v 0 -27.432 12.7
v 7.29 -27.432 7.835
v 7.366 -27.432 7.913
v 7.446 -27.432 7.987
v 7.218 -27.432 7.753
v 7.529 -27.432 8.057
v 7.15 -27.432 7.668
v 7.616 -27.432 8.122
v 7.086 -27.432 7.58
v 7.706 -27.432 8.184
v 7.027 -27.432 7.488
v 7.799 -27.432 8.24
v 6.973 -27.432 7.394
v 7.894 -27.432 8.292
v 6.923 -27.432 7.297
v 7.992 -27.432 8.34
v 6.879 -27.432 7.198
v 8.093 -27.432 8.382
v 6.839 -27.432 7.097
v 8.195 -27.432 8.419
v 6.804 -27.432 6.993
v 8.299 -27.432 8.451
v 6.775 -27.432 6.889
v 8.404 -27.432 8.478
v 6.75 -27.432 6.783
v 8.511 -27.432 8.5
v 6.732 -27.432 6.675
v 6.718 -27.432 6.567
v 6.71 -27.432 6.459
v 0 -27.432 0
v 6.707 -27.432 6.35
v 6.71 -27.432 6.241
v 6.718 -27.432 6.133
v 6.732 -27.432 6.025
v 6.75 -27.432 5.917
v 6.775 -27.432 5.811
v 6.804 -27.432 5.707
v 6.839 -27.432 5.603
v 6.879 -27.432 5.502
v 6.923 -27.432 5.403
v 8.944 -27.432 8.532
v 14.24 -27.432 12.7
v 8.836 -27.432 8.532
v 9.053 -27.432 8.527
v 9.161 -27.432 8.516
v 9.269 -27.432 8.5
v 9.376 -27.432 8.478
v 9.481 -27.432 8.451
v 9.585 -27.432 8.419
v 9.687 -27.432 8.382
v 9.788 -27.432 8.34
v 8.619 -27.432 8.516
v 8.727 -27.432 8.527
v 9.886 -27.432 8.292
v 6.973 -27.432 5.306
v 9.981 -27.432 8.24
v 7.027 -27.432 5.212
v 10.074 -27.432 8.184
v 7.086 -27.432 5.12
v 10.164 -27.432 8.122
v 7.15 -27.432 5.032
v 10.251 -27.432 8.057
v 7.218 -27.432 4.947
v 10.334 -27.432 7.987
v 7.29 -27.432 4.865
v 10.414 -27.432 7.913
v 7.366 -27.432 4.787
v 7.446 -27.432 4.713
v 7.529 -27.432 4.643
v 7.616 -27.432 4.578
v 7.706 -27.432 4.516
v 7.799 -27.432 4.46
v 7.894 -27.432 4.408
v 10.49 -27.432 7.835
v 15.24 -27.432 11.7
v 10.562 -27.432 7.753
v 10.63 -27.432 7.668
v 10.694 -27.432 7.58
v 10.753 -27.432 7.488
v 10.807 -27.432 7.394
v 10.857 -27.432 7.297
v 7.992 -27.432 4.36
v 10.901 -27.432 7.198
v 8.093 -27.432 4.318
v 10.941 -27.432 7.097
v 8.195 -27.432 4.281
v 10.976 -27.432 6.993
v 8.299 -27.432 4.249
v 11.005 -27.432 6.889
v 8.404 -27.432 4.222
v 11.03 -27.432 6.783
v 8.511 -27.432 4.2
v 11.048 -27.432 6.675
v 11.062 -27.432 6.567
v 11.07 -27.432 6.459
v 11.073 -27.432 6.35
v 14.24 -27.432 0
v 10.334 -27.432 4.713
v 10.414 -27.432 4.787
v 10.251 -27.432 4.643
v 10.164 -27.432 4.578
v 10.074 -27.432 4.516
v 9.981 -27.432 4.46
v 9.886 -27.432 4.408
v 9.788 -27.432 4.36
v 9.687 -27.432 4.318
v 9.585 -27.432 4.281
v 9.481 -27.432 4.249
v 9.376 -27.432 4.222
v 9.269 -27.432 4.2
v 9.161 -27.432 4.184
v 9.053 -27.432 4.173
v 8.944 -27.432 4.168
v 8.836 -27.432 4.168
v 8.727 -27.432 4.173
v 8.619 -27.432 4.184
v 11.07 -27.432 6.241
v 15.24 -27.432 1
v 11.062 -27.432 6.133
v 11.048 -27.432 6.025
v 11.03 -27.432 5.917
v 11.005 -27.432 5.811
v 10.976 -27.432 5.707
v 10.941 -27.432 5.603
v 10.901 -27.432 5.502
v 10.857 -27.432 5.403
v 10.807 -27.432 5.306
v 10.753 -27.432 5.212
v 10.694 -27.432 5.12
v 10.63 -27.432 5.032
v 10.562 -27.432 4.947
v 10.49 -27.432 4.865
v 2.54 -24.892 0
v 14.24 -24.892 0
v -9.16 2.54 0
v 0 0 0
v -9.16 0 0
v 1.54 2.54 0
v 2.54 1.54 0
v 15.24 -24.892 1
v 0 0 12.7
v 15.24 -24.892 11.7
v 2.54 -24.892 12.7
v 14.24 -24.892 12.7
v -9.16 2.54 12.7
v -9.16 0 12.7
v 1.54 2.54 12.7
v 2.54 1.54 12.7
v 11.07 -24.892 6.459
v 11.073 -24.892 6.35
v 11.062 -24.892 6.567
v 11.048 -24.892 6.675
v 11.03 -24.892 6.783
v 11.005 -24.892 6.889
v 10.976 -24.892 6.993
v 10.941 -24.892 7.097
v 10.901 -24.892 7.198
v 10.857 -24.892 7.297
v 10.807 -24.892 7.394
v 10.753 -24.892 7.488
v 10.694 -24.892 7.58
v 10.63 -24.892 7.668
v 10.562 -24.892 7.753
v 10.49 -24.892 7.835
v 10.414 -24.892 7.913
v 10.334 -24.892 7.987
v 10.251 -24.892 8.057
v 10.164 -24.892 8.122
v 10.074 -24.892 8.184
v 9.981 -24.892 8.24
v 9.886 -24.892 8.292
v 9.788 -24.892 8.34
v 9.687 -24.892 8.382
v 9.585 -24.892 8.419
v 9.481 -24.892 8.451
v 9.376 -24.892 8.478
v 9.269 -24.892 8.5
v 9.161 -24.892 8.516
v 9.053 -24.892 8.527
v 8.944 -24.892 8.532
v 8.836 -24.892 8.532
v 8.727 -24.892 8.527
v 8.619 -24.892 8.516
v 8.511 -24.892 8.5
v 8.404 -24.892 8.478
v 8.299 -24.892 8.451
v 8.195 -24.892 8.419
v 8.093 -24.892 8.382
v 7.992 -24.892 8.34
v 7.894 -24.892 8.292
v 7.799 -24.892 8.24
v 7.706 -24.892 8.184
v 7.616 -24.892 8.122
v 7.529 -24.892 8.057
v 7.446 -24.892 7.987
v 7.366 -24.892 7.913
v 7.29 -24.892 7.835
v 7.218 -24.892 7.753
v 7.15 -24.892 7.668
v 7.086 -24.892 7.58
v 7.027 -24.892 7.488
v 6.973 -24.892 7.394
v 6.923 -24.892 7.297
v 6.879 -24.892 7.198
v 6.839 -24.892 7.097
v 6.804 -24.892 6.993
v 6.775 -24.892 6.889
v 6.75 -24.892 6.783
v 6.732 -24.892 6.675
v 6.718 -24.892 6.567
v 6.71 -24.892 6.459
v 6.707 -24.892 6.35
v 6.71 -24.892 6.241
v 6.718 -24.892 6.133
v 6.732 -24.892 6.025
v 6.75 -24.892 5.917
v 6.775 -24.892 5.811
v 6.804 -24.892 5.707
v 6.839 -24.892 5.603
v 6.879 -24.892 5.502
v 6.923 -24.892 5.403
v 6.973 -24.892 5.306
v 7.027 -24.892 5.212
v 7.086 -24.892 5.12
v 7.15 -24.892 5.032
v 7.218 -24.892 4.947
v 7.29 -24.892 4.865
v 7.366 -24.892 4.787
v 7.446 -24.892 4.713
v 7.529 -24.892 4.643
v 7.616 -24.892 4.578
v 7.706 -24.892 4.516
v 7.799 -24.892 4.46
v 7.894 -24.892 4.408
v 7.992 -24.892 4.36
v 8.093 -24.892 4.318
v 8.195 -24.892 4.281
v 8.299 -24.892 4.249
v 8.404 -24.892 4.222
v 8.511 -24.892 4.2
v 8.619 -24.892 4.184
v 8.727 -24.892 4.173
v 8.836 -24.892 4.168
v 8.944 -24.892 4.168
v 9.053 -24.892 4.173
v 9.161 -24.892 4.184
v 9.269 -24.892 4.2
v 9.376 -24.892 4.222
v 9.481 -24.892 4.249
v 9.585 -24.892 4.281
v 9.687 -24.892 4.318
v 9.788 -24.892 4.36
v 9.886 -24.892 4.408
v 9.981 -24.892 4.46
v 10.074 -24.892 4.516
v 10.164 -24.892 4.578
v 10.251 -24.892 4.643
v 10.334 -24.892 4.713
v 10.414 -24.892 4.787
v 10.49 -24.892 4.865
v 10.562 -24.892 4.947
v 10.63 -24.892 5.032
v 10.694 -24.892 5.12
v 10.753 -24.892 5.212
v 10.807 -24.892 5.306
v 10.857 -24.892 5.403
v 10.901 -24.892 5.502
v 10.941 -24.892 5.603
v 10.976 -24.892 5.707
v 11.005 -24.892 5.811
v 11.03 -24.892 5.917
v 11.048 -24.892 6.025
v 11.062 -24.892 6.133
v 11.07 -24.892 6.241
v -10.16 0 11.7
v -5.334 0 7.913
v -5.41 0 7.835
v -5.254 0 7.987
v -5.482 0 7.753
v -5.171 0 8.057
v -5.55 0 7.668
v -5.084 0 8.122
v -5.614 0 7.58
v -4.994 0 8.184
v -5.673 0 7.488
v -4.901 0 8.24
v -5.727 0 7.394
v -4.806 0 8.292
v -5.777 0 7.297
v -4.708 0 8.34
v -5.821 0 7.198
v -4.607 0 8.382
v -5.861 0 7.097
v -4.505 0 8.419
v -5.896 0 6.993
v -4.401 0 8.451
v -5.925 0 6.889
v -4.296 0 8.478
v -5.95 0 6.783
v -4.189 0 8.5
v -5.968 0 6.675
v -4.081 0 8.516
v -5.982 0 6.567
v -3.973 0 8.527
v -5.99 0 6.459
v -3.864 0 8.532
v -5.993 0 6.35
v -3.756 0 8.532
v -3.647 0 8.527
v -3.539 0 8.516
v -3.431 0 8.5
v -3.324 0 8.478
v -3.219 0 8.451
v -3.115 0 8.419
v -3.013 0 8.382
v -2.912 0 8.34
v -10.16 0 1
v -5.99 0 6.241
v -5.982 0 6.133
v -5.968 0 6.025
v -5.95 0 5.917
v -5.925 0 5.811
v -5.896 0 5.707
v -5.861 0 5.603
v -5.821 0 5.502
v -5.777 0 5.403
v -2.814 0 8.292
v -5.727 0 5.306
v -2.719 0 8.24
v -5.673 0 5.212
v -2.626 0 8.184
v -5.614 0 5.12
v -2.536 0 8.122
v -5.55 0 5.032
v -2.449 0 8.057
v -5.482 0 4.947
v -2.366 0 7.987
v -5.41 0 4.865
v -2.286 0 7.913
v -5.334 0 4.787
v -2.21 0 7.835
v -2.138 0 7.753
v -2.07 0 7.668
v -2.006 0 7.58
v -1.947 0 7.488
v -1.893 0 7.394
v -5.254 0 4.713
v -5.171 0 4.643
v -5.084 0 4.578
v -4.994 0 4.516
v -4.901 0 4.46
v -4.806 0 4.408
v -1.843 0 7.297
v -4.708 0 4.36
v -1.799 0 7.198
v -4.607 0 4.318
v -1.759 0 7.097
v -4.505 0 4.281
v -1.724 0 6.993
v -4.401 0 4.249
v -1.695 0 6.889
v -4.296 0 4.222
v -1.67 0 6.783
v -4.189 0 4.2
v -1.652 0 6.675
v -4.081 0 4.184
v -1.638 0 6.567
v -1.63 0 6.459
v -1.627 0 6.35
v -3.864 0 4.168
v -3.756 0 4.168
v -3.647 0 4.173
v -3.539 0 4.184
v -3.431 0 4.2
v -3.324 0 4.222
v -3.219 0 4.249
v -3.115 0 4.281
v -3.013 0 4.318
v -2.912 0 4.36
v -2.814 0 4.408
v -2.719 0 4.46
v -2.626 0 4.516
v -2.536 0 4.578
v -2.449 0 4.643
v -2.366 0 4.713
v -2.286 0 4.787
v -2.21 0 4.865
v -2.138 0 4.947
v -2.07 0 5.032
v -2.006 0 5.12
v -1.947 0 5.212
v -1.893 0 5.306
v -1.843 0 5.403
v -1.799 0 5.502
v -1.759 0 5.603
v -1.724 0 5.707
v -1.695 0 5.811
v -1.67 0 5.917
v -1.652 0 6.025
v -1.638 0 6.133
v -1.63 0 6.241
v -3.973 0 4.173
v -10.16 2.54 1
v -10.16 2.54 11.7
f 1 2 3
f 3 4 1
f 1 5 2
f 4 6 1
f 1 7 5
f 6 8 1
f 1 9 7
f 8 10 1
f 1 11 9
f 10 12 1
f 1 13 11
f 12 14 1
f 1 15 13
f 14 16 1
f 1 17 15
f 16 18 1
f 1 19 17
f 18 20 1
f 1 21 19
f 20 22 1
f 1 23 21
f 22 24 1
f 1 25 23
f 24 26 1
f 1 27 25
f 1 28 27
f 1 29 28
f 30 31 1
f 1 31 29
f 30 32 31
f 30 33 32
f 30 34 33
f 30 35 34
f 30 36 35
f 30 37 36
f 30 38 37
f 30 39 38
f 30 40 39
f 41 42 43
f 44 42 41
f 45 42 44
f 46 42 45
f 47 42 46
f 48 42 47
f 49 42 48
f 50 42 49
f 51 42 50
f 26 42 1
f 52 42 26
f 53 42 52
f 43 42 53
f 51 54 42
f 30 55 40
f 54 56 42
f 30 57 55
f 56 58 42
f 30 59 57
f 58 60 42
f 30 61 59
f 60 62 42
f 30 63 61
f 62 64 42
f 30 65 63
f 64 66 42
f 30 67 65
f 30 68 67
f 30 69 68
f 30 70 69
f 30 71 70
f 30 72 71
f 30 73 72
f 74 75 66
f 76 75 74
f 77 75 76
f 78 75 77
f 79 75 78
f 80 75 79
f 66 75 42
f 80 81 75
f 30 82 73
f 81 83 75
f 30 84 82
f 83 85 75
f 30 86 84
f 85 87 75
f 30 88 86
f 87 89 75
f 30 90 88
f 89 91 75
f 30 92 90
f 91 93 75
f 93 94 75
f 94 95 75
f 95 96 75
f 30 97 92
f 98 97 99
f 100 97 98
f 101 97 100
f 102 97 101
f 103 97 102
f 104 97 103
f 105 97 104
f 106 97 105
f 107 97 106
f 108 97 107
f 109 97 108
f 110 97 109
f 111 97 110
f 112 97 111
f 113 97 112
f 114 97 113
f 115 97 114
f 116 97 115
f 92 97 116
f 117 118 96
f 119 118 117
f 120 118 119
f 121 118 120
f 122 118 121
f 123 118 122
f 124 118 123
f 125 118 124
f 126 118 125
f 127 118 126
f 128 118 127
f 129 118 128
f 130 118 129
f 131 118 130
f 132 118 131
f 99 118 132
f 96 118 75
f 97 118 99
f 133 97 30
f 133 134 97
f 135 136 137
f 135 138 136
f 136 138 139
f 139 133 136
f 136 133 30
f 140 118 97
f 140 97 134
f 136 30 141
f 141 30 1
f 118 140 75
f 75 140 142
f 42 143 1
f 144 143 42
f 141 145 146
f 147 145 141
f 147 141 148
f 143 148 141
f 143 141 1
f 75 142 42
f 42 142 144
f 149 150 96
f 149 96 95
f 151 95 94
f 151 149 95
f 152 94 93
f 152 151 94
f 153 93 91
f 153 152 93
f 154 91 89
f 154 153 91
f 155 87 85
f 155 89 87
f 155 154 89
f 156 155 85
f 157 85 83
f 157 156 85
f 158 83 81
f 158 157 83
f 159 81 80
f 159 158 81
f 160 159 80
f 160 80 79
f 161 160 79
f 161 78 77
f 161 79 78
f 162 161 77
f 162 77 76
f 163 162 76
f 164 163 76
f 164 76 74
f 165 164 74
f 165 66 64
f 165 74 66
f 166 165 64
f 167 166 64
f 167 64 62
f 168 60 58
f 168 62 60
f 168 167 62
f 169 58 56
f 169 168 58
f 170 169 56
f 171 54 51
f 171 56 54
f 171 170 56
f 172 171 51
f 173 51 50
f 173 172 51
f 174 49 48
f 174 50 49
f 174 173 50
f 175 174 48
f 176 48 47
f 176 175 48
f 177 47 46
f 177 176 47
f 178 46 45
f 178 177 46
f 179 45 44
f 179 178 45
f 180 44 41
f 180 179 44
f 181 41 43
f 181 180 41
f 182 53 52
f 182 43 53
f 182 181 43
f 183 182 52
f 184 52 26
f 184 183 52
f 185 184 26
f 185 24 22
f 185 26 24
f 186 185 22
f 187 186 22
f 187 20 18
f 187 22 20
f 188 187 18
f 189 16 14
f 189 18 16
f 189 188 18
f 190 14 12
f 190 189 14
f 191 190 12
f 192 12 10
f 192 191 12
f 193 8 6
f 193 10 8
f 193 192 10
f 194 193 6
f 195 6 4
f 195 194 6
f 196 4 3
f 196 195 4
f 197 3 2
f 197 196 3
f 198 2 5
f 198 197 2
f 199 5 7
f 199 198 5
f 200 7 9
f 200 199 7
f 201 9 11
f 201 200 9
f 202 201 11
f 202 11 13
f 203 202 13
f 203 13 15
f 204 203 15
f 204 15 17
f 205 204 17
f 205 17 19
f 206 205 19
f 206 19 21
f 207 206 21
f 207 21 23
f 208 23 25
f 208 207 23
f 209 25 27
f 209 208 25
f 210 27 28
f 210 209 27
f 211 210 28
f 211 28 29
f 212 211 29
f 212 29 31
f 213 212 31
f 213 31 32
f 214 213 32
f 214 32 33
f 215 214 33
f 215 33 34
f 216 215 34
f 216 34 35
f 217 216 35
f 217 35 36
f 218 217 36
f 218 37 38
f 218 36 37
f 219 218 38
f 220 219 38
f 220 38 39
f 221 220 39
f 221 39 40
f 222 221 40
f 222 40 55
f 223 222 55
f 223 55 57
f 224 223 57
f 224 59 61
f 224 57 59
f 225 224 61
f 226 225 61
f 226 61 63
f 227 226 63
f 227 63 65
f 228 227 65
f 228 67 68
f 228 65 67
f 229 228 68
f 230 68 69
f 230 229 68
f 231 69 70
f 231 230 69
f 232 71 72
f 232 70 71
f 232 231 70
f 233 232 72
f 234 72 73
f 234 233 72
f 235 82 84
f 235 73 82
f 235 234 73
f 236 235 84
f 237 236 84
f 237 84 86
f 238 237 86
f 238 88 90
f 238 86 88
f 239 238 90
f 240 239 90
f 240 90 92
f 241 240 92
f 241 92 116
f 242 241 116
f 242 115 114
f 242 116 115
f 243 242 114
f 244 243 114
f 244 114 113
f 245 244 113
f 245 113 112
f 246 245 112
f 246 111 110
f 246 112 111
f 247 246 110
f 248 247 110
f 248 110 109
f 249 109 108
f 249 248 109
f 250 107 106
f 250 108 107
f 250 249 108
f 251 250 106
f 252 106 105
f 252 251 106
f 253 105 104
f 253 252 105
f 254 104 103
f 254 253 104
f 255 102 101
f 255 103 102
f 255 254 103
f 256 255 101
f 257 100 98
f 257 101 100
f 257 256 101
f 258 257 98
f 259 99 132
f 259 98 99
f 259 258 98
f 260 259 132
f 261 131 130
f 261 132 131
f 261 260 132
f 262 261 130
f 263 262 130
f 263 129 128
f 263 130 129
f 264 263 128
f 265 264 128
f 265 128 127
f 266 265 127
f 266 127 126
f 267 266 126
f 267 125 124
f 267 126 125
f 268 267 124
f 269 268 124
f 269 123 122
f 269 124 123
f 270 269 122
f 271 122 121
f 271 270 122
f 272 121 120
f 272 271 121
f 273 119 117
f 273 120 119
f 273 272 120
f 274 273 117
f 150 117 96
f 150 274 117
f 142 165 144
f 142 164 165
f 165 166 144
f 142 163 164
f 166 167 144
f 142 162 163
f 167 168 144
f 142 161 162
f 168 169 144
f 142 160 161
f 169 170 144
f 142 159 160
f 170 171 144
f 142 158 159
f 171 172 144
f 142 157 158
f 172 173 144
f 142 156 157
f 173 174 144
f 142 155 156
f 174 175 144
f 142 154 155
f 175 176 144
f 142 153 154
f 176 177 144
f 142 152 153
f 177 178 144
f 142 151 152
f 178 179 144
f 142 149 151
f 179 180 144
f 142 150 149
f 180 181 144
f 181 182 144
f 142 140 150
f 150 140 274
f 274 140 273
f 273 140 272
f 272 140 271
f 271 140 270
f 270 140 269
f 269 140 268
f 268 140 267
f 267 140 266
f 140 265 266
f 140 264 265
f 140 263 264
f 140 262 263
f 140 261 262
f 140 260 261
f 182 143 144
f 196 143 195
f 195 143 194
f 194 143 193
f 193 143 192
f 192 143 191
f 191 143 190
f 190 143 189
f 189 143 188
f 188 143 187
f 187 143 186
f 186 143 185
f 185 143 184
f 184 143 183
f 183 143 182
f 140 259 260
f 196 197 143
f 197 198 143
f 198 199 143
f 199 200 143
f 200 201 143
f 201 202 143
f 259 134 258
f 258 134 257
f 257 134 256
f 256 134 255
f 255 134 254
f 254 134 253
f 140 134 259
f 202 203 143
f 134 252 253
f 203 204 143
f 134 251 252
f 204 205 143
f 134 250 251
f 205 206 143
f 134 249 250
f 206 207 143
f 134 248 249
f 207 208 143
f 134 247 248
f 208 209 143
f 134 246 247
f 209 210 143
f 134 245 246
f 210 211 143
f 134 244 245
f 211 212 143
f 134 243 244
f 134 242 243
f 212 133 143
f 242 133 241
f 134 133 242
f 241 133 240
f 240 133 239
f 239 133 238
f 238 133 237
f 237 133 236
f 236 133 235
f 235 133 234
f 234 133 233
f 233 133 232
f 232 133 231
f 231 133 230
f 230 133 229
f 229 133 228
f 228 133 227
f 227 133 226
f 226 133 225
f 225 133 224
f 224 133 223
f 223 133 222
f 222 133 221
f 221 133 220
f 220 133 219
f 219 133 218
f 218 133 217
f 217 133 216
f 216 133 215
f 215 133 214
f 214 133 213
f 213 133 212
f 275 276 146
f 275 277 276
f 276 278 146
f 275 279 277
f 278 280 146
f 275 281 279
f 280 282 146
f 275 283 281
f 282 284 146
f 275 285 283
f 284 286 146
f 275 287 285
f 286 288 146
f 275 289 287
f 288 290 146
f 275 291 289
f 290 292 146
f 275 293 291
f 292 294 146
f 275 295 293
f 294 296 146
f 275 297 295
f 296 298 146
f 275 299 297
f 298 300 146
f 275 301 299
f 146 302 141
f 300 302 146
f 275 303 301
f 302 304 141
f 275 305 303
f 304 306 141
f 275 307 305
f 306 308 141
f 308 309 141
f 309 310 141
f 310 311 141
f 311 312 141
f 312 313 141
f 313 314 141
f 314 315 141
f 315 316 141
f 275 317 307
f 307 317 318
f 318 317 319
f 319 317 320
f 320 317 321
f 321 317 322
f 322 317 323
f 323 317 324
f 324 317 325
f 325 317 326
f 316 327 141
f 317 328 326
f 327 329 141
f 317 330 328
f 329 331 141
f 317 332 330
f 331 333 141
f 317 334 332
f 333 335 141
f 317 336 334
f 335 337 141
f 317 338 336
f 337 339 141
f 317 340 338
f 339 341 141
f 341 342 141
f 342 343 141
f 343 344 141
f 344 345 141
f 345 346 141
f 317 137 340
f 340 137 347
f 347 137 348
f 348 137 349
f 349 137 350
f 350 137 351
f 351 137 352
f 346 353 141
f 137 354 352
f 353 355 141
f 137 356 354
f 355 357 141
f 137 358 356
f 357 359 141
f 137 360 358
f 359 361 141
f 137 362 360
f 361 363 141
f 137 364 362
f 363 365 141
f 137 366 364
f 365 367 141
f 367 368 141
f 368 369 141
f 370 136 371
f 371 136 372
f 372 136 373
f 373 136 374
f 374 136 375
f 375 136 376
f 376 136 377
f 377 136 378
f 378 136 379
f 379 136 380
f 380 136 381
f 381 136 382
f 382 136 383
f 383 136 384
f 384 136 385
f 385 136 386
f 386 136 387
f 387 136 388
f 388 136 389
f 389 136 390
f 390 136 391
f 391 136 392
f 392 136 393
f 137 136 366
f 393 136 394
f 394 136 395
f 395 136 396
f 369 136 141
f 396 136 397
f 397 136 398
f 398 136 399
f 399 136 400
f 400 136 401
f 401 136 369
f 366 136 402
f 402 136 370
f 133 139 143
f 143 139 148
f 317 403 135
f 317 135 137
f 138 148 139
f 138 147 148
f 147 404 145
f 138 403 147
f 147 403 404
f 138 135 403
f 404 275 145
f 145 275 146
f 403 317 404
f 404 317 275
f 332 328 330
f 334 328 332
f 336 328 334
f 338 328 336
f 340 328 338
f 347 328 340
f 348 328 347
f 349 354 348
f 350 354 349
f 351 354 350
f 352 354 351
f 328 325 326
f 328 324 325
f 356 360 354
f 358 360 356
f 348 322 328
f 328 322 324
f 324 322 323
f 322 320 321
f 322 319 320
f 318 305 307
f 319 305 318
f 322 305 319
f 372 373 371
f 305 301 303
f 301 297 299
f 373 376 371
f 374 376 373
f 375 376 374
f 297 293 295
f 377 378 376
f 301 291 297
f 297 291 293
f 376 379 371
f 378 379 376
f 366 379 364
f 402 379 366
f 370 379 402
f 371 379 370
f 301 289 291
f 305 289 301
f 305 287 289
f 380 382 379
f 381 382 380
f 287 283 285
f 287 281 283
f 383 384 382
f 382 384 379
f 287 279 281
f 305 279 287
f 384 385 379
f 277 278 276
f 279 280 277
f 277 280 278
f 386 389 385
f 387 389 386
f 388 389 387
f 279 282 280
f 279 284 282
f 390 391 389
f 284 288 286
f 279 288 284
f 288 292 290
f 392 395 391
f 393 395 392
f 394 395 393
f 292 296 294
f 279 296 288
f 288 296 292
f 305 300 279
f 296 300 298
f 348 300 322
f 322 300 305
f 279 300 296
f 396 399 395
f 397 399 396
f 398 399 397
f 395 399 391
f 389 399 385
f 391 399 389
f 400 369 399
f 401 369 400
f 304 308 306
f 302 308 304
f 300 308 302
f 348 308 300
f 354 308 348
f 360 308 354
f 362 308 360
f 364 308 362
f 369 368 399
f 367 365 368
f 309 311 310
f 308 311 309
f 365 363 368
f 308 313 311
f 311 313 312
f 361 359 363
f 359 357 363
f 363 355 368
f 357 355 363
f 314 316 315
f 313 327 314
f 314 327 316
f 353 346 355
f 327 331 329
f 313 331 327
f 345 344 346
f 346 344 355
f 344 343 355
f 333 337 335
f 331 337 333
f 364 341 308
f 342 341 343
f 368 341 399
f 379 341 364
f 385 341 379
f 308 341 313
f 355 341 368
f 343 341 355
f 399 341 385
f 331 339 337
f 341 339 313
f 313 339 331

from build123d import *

# Parameters (mm, degrees)
PAD_DEPTH    = 12.7
SKETCH001_R  = 2.182812
POCKET_DEPTH = 27.433
CHAMFER_SIZE = 1


with BuildPart() as part:
    # Sketch → Pad (new body)
    with BuildSketch(Plane.XY):
        Polygon((0, -27.432), (15.24, -27.432), (15.24, -24.892), (2.54, -24.892), (2.54, 2.54), (-10.16, 2.54), (-10.16, 0), (0, 0), align=None)
    extrude(amount=PAD_DEPTH)

    # Sketch001 → Pocket (cut, through all)
    with BuildSketch(Plane.XZ):
        with Locations((8.89, 6.35)):
            Circle(SKETCH001_R)
        with Locations((-3.81, 6.35)):
            Circle(SKETCH001_R)
    extrude(amount=POCKET_DEPTH, mode=Mode.SUBTRACT)

    # Chamfer
    chamfer_edges = [part.edges().sort_by_distance(p)[0] for p in [
        (-10.16, 1.27, 0),
        (-10.16, 1.27, 12.7),
        (2.54, 2.54, 6.35),
        (15.24, -26.162, 0),
        (15.24, -26.162, 12.7),
    ]]
    chamfer(chamfer_edges, length=CHAMFER_SIZE)


solid = part.part
